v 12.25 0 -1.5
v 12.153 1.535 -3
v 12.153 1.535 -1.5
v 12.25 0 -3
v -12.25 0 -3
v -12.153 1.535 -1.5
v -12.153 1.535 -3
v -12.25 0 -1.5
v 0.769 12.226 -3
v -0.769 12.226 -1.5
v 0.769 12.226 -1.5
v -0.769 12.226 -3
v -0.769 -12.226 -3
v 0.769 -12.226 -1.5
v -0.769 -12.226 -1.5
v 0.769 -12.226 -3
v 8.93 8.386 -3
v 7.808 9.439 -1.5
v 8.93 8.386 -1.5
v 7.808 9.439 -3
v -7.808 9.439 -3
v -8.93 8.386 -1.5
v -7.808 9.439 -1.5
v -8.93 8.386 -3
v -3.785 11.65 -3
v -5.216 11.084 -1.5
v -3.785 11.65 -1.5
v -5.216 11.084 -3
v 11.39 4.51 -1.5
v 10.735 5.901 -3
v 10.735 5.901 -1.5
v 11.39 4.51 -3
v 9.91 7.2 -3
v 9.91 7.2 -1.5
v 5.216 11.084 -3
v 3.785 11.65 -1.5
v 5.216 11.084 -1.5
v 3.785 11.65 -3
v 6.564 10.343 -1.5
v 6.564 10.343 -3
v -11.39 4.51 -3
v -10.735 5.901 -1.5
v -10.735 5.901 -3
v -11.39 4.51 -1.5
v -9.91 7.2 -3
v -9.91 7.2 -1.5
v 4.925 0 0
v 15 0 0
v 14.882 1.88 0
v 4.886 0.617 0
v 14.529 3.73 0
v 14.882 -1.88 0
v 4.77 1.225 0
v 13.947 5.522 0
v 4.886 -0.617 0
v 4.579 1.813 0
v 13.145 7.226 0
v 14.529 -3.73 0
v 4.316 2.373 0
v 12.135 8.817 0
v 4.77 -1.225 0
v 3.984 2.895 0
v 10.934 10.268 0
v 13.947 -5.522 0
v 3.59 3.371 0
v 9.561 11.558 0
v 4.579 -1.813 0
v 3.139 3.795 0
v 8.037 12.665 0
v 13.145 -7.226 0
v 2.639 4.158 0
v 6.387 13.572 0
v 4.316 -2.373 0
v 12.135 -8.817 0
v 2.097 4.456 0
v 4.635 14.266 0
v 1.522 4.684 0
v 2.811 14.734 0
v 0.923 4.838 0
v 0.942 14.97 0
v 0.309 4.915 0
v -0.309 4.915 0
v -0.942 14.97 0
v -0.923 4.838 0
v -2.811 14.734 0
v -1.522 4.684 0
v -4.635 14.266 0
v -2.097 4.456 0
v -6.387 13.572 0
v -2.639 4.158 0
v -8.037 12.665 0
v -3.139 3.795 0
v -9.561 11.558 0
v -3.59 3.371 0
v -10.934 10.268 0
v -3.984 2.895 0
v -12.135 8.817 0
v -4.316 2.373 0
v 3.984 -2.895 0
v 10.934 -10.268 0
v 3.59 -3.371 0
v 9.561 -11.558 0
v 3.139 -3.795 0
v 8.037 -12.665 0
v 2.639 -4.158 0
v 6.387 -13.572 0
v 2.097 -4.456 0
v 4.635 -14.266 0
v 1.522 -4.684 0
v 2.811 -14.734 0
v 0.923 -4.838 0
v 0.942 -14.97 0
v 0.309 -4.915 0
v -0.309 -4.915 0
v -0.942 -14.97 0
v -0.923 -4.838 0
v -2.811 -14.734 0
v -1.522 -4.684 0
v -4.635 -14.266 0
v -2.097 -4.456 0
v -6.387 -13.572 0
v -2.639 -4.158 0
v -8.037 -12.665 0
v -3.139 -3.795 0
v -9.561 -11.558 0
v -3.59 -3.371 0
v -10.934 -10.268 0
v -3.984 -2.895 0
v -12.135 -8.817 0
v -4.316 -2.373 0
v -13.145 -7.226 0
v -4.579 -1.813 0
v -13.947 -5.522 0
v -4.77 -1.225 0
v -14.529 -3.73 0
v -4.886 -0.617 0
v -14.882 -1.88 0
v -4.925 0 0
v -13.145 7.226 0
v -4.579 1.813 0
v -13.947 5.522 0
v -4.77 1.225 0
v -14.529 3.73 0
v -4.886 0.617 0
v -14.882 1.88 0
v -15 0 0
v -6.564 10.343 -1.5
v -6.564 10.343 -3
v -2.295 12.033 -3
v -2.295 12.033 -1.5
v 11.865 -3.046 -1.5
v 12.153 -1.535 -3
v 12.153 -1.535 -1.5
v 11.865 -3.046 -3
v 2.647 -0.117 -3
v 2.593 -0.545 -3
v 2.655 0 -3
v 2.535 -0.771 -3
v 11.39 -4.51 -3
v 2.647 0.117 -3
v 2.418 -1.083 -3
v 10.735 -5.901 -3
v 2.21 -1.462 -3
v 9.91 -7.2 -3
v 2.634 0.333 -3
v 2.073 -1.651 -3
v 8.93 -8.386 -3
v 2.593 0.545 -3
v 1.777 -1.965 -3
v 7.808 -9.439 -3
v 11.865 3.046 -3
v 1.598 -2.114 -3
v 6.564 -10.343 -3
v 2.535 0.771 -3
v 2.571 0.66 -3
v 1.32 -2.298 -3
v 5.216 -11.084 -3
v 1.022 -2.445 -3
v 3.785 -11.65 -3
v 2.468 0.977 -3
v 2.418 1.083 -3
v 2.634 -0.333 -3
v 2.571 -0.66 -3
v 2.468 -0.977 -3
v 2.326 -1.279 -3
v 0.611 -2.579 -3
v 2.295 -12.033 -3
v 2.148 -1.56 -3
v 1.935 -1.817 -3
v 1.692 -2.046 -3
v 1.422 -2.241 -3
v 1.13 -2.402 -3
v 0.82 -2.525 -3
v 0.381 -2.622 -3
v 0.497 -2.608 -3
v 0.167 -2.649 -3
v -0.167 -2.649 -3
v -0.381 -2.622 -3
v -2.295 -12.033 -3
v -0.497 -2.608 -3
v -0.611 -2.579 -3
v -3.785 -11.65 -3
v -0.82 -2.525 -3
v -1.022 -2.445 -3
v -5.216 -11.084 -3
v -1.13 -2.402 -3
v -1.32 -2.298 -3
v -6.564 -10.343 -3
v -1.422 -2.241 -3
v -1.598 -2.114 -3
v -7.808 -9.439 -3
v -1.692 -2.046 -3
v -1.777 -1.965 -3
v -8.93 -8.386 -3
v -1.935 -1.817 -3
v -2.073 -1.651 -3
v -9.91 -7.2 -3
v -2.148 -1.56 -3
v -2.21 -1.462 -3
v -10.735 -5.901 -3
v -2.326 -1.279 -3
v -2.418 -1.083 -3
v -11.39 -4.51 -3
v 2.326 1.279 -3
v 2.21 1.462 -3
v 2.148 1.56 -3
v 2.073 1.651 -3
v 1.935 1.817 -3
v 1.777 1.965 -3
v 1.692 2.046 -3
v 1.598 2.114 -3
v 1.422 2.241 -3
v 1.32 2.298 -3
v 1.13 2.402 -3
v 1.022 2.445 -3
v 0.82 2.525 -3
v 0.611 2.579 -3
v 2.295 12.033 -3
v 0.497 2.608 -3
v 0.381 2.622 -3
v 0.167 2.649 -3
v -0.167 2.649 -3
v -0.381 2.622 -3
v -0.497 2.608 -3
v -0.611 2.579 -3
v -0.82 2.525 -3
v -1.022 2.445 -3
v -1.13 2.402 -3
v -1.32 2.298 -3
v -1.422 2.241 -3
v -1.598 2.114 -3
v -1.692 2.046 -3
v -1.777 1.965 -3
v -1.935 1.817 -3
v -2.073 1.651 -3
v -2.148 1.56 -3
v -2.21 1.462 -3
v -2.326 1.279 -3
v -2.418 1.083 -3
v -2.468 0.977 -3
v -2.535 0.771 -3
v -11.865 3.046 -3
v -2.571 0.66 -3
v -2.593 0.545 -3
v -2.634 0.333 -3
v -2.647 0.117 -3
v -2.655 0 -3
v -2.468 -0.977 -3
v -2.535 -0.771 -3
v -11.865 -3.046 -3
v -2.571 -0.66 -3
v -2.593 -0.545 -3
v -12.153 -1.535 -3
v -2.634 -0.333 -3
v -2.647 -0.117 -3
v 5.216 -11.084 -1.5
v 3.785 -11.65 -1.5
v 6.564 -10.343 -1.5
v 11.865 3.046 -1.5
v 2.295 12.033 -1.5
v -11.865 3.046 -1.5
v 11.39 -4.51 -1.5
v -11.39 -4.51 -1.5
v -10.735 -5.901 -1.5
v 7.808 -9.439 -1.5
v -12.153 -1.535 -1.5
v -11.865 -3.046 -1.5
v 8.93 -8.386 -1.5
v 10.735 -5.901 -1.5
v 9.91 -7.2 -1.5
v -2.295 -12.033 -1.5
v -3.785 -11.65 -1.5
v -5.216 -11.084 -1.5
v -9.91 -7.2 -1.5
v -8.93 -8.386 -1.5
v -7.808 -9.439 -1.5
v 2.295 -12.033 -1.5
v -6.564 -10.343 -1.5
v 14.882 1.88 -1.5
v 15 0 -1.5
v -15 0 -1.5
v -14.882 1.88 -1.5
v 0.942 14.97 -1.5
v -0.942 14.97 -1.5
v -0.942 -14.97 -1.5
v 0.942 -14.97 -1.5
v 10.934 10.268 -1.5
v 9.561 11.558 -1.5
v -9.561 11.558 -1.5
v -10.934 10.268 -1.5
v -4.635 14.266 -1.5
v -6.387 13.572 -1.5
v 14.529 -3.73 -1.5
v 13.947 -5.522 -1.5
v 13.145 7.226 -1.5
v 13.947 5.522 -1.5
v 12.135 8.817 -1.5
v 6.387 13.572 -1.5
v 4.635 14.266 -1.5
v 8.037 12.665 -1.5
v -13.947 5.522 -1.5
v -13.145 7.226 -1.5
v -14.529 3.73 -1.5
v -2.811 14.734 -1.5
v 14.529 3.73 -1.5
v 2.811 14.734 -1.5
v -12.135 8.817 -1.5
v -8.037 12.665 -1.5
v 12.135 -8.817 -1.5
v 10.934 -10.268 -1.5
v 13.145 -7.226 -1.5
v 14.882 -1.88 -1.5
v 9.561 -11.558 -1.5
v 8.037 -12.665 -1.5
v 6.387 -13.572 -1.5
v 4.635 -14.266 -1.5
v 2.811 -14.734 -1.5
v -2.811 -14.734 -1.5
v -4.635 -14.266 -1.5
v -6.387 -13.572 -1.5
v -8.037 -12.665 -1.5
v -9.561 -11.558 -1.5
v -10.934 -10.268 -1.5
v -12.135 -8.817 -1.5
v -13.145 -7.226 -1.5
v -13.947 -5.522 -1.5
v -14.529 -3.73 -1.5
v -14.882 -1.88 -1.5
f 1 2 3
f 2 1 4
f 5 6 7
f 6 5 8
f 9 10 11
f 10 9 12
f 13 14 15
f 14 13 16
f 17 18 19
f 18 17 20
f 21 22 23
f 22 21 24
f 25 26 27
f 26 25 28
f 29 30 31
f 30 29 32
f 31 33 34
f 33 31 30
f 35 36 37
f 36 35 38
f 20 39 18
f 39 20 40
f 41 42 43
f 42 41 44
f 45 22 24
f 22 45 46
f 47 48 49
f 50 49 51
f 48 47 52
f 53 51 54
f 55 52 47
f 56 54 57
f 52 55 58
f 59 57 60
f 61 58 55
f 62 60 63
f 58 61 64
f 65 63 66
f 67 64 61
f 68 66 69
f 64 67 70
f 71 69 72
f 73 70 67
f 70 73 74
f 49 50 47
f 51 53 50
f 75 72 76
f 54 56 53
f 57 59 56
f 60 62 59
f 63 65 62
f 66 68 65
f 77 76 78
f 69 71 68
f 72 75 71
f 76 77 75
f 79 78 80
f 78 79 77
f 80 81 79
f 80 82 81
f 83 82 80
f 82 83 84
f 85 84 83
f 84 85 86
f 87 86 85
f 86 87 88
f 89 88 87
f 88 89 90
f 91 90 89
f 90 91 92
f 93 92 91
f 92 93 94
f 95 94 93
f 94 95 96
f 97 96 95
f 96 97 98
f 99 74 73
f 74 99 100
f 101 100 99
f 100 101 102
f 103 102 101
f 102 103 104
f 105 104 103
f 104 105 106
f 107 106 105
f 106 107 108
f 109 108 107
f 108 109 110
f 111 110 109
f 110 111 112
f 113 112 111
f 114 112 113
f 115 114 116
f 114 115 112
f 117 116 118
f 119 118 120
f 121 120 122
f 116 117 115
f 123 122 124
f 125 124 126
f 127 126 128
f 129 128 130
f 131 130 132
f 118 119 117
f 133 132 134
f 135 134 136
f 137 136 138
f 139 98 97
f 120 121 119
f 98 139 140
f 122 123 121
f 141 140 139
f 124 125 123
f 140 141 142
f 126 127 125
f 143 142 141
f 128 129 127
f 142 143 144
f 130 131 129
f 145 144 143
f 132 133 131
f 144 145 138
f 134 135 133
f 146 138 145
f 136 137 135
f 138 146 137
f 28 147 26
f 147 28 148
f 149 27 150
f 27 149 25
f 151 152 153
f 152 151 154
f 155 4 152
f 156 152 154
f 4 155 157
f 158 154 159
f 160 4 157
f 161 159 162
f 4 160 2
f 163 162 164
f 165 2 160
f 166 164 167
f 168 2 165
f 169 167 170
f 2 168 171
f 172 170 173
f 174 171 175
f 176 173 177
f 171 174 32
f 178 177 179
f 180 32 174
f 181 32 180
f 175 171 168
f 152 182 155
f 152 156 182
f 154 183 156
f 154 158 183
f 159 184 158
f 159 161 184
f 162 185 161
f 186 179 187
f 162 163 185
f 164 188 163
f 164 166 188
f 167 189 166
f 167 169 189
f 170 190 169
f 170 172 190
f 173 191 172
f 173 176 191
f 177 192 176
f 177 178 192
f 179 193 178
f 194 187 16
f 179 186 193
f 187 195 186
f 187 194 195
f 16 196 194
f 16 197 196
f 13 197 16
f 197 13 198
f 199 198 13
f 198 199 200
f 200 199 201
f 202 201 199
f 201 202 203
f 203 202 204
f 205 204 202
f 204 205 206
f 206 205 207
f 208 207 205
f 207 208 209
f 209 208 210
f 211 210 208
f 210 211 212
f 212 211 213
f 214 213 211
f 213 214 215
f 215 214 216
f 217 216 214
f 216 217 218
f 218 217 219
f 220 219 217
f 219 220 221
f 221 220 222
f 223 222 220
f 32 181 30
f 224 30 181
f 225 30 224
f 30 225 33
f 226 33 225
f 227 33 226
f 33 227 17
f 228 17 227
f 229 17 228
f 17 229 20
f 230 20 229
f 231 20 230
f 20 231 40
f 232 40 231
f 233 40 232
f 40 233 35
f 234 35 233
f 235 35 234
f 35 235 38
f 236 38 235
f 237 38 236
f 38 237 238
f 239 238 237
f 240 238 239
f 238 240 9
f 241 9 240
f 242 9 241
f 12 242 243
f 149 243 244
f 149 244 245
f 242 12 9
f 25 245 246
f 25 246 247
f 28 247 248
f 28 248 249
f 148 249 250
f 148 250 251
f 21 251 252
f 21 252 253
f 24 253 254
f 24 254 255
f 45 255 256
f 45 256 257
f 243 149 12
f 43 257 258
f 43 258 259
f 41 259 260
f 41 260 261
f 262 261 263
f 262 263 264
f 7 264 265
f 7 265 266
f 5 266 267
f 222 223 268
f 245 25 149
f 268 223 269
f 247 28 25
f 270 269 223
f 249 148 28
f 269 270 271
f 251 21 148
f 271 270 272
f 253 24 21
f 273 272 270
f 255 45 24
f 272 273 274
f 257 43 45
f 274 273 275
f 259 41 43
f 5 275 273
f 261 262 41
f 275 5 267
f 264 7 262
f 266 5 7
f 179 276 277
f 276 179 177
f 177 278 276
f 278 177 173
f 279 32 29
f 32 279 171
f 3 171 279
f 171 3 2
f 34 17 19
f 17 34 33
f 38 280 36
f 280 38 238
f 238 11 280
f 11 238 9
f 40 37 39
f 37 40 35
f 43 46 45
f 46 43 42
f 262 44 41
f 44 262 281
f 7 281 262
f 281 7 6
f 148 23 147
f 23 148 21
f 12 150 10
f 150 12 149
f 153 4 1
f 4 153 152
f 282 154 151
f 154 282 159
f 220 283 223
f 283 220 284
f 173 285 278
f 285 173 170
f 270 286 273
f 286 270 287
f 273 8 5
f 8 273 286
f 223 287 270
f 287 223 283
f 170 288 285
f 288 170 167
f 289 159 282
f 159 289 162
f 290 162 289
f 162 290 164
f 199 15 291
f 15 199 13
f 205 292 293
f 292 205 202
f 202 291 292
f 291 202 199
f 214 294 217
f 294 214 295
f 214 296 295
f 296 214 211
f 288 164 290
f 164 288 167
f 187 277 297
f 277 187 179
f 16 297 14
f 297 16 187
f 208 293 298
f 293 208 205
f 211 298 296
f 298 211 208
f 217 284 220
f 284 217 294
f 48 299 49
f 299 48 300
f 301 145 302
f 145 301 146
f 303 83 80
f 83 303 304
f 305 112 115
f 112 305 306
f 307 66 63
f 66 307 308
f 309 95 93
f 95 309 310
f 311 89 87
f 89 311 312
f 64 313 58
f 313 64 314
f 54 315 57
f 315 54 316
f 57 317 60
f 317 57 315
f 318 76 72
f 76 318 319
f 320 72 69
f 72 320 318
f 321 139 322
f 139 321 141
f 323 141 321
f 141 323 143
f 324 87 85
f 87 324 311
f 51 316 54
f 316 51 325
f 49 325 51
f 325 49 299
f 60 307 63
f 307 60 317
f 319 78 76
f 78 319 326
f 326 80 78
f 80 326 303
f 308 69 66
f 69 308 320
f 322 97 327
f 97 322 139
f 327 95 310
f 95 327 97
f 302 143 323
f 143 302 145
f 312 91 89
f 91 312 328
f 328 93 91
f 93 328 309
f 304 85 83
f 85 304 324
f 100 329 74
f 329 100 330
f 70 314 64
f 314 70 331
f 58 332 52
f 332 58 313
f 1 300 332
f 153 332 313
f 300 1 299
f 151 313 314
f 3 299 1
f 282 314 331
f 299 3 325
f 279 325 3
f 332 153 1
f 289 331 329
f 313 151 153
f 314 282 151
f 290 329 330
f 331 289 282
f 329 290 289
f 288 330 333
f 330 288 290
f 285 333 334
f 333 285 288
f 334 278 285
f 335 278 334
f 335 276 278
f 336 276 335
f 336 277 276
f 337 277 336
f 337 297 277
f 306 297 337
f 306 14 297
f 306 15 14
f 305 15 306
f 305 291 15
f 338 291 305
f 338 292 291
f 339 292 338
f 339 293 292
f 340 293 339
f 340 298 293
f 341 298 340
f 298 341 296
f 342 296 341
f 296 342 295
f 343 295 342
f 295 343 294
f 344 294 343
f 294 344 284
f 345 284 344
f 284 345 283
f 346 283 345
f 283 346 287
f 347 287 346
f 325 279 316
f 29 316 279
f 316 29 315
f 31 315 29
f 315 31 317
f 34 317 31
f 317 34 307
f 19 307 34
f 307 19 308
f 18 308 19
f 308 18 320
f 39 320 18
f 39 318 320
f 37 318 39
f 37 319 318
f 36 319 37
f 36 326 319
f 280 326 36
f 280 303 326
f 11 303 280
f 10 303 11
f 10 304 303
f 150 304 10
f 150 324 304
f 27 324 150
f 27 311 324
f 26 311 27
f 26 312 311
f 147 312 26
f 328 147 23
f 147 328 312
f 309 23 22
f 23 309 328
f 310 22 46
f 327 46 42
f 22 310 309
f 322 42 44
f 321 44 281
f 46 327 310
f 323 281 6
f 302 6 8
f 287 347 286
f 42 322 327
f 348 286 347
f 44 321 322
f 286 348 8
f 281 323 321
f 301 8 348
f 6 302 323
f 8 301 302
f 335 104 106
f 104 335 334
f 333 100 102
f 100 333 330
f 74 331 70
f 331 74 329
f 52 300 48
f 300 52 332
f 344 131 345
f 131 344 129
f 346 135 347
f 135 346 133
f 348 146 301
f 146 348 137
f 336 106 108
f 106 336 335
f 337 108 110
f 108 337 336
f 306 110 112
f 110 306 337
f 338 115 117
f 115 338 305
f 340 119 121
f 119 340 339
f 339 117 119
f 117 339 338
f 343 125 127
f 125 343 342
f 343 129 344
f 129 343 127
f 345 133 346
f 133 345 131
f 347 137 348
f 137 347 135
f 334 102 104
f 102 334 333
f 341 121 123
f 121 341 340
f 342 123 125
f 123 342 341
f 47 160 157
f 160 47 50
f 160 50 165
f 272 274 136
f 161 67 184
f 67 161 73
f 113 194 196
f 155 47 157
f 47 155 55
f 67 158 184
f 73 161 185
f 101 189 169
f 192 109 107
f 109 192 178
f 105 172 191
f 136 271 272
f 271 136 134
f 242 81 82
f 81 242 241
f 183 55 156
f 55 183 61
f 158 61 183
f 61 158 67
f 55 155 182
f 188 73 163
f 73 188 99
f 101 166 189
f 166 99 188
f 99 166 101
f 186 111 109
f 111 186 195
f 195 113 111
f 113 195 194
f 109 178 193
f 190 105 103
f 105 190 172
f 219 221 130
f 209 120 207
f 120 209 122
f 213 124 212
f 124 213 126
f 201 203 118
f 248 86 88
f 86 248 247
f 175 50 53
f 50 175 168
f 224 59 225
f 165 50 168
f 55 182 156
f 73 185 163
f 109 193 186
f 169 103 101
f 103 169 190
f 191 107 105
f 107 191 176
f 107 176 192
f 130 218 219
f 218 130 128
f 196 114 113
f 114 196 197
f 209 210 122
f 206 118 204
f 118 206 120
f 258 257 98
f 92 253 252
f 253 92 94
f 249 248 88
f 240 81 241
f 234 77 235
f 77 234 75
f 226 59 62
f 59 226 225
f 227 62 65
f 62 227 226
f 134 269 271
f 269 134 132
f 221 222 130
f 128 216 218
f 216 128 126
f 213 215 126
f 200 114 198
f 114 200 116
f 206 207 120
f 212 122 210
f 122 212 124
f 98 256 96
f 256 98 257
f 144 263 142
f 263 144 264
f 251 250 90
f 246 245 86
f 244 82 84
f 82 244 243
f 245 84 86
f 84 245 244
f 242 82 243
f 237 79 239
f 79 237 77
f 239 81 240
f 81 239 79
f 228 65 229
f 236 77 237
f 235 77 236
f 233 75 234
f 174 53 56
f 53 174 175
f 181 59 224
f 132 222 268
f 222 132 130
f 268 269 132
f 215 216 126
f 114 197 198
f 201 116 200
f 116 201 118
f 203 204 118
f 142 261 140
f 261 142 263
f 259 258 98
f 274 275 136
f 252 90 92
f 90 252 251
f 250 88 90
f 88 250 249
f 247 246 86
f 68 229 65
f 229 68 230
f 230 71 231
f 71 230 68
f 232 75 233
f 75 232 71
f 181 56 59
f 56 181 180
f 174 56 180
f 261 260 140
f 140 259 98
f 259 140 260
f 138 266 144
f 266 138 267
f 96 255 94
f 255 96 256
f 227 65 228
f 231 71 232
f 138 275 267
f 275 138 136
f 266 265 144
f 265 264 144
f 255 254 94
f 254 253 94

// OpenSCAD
$fn = 50;


difference() {
	union() {
		translate(v = [0, 0, -3.0000000000]) {
			cylinder(h = 3, r = 12.2500000000);
		}
		translate(v = [0, 0, -1.5000000000]) {
			cylinder(h = 1.5000000000, r = 15.0000000000);
		}
	}
	union() {
		translate(v = [0, 0, 0]) {
			rotate(a = [0, 0, 0]) {
				difference() {
					union() {
						#translate(v = [0, 0, -350.0000000000]) {
							cylinder(h = 200, r = 2.0000000000);
						}
						#translate(v = [0, 0, -3.7000000000]) {
							cylinder(h = 3.7000000000, r1 = 2.1250000000, r2 = 4.9250000000);
						}
						#translate(v = [0, 0, -350.0000000000]) {
							cylinder(h = 200, r = 2.1250000000);
						}
						#translate(v = [0, 0, -350.0000000000]) {
							cylinder(h = 200, r = 2.0000000000);
						}
					}
					union();
				}
			}
		}
	}
}
